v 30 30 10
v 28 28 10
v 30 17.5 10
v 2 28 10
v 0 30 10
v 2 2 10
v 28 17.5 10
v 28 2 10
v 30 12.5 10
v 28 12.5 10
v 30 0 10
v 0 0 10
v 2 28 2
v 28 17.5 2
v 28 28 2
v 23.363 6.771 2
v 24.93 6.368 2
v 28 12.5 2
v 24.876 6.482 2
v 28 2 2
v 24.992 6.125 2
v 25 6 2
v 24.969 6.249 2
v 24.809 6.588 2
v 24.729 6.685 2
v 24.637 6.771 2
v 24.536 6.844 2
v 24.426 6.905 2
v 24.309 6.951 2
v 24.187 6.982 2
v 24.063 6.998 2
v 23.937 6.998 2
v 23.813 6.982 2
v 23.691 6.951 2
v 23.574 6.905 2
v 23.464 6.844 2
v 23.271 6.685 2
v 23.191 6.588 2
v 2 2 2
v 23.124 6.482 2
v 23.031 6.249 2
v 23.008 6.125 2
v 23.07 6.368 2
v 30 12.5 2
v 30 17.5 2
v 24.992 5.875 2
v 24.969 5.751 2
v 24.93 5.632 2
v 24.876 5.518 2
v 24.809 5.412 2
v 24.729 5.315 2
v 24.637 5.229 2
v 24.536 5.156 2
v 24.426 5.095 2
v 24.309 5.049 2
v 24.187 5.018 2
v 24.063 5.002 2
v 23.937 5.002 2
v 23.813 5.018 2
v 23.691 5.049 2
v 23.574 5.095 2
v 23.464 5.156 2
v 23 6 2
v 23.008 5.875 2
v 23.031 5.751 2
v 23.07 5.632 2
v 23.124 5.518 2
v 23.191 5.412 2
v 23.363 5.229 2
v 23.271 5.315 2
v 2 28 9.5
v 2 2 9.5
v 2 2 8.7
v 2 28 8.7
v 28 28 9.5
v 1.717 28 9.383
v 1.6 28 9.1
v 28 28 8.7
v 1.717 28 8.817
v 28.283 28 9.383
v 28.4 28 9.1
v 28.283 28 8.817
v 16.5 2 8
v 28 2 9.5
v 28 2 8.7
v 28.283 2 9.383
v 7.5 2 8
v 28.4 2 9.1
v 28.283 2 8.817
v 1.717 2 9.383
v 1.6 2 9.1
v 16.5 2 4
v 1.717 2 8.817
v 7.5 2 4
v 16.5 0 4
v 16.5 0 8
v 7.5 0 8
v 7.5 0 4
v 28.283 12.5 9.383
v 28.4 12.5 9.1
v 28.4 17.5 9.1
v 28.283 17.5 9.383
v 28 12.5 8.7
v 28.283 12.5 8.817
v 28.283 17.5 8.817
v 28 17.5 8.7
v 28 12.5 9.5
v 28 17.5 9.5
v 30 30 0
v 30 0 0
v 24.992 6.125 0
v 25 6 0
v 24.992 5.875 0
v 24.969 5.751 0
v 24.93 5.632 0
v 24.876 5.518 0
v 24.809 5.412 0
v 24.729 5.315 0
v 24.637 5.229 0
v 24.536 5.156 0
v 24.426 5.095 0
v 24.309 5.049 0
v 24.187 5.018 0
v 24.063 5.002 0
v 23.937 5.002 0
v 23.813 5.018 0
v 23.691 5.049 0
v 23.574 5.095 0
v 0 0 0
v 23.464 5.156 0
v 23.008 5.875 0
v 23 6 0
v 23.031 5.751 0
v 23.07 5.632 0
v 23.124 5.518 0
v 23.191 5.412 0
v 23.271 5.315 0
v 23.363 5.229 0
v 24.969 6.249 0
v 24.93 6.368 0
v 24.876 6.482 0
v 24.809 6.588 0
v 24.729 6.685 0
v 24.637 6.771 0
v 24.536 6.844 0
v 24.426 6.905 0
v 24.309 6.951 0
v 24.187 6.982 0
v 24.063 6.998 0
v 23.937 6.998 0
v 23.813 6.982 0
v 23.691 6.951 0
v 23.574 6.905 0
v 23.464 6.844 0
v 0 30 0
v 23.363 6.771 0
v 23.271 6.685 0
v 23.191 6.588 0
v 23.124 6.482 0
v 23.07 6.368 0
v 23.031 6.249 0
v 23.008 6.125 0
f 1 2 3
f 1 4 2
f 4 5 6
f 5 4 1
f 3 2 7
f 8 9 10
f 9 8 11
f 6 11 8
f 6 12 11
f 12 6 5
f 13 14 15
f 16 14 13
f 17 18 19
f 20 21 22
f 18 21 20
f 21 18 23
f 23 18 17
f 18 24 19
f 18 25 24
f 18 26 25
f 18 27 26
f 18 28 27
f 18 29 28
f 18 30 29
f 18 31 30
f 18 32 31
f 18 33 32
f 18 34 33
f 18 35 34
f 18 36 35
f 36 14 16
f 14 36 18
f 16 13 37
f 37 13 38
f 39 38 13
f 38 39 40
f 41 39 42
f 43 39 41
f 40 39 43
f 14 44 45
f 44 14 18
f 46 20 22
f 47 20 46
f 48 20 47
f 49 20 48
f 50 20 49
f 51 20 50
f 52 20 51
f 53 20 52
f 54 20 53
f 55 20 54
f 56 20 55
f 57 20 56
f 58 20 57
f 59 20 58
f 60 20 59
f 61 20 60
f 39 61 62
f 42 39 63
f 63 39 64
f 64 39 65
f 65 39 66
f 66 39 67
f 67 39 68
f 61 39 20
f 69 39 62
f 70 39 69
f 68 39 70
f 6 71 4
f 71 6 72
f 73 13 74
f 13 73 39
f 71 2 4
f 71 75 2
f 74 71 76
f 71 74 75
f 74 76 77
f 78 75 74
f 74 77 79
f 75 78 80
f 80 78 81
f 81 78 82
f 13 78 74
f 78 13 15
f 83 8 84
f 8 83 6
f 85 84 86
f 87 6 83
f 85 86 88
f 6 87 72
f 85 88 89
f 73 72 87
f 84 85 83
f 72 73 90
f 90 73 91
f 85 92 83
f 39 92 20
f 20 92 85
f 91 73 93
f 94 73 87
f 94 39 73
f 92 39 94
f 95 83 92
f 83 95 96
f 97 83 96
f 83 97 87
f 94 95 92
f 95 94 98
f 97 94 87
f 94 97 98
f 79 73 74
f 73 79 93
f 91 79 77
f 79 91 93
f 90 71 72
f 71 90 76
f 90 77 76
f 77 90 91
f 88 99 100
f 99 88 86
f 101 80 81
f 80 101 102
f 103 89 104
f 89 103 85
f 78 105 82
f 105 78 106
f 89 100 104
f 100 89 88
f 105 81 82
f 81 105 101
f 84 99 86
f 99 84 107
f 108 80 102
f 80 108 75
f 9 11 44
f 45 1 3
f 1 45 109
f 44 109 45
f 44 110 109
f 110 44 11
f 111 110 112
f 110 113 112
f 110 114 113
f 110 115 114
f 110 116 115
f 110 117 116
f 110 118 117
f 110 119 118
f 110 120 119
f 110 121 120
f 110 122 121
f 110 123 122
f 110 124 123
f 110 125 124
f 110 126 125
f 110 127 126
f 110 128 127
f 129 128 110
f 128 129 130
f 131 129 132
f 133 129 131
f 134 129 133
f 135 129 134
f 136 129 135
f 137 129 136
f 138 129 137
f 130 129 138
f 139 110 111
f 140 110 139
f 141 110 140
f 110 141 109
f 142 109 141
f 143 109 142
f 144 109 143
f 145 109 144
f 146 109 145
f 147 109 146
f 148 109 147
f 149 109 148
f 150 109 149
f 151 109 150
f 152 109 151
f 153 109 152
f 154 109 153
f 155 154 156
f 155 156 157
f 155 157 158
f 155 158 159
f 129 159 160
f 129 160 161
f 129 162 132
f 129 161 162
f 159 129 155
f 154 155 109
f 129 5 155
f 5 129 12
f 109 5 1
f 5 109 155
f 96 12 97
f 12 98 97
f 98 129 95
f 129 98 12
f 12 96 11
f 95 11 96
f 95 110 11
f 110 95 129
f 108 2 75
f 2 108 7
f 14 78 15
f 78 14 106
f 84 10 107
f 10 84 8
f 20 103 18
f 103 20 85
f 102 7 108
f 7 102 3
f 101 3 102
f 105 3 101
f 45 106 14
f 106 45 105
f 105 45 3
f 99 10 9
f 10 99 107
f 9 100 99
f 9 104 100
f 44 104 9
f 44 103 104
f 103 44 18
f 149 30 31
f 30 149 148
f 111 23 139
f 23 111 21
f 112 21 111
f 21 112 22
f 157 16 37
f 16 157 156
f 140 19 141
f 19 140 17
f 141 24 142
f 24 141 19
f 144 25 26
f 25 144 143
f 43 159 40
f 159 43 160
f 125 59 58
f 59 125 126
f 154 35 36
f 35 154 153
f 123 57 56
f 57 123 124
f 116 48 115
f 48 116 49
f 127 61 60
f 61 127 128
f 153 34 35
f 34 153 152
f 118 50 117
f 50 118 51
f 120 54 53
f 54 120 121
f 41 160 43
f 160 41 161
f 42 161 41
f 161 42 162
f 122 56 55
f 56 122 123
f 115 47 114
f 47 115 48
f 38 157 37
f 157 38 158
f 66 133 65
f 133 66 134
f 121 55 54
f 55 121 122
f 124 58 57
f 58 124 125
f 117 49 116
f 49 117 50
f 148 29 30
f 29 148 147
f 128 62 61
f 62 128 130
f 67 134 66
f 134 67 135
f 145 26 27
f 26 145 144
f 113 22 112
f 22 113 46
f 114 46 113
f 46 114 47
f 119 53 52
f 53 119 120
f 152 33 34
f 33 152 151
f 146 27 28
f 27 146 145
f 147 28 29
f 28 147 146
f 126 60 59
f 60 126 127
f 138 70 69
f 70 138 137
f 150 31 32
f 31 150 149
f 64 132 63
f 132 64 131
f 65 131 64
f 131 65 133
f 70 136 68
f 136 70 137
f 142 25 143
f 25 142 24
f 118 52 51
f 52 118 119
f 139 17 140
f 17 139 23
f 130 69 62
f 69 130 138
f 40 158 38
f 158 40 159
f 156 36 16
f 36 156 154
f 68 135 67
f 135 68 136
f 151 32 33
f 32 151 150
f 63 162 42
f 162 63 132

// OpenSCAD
ws = 2;

length = 24 + ws;
width = 18 + ws;
height = 6 + ws;

side_space = 6;
slot = 5;
screw_d = 2;


usbc = [9, 4];

case_dim = [2*ws + width, 2*ws + length, 2*ws + height];

otherside = case_dim.x + side_space;

slit_d = .8;
slit_h = case_dim.y - 2*ws;
h_to_slit_start = .5;

module rpi()
{
	cube([width, length, height]);
	translate([(width - usbc.x) / 2, -2*ws, (height - usbc.y) / 2])
		cube([usbc.x, 4*ws, usbc.y]);
}

module case()
{
	difference()
	{
		cube([otherside, case_dim.y, height + ws]);
		translate([(case_dim.x - width) / 2, (case_dim.y - length) / 2, (case_dim.z - height) / 2])
			rpi();
		// extra space
		translate([(otherside - width) - ws, (case_dim.y - length) / 2, (case_dim.z - height) / 2])
			cube([width, length, height]);

		// slot
		translate([otherside - ws - 1, (case_dim.y - slot) / 2, ws])
			cube([ws + 2, slot, height]);

		// screw hole
		translate([case_dim.x, side_space, -.1])
			cylinder(d = screw_d, h = 2 * ws, $fn = 50);

		// cap slit
		for(x = [ws, otherside - ws])
		{
			translate([x, ws, (height + ws) - (h_to_slit_start + slit_d/2) ])
				rotate([-90, 0, 0])
					cylinder(h = slit_h, d = slit_d, $fn = 8);
		}
	}
}

module upside_deggel()
{
	cube([otherside, case_dim.y, ws]);
	
	// wiggle-room
	wg = .5;
	tab_width = 1;
	
	needed_h = h_to_slit_start + slit_d;
	translate([0,0,ws])
	difference()
	{
		union()
		{
			translate([ws + wg/2, ws, 0])
				cube([otherside - 2 * (ws + wg/2), case_dim.y - 2 * ws, needed_h ]);
			
			// cap slit
			for(x = [ws + wg/2, otherside - (ws + wg/2)])
			{
				translate([x, ws, h_to_slit_start + slit_d / 2])
					rotate([-90, 0, 0])
						cylinder(h = slit_h, d = slit_d, $fn = 8);
			}
		}
		

		translate([ws + tab_width, ws, 0])
				cube([otherside - 2 * ws - 2 * tab_width, case_dim.y - 2 * ws, needed_h + 1 ]);
	}
}

module deggel()
{
	mirror([0,0,1]) upside_deggel();
}

!case();

translate([0,0,case_dim.z + 10])
	deggel();
